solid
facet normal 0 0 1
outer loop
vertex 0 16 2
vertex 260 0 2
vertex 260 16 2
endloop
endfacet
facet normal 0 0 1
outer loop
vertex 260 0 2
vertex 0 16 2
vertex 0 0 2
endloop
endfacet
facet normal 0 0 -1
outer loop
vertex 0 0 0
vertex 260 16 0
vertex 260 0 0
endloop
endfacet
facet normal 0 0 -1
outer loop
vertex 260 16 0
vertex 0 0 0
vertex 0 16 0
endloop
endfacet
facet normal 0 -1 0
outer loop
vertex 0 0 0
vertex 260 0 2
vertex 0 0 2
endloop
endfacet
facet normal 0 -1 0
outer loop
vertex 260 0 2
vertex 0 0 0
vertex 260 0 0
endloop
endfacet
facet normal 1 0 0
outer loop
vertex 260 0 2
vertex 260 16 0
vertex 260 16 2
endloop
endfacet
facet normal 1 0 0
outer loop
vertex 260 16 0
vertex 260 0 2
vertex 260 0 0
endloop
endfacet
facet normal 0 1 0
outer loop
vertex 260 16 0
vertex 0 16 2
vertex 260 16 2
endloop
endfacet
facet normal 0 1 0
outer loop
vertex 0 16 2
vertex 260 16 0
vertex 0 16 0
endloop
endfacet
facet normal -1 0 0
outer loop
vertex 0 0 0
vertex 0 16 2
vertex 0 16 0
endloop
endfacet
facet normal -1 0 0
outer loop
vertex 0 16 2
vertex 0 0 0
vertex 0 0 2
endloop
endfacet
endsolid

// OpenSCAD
// file: ../references.scad
// Size
//Naming
// _PT = printable
// _ES = exact size
// _IS = insertable with force but no gaps

//--------------cables  (CB)

//----Ethernet (rj45)

//not mesured yet
CB_RJ45_Diameter_ES=4; 

//--------------threaded rod  (TR)

//----M5

TR_M5_Diameter_ES = 5.8;
//for a hole 
TR_M5_Diamater_IS = 6;
TR_M5_Diamater_PT = 7;


//----M10

TR_M10_Diameter_ES = 9.6;
//for a hole 
TR_M10_Diamater_IS = 10;
TR_M10_Diamater_PT = 12;

//--------------Screw (SC)
//----M3

module body_M3(height_input){
    cylinder(d=SC_M3_Diameter_PT,h=height_input,$fn=60);
    
    }

module body_M5(height_input){
    cylinder(d=SC_M5_Diameter_PT,h=height_input,$fn=60);
    
    }
    
SC_M3_Diameter_ES = 2.96;
SC_M3_Head_Diameter_ES = 5.90;
SC_M3_Head_Height_ES = 2.32;
//for a hole 
SC_M3_Diameter_PT = 4; 


//----M5

SC_M5_Diameter_ES = 4.86;
SC_M5_Head_Diameter_ES = 9.24;
SC_M5_Head_Height_ES = 3.0;
//for a hole 
SC_M5_Diameter_IS = 5;
SC_M5_Diameter_PT = 5.2; //inconnu pour le moment
SC_M5_Head_Diameter_PT = 11;

//--------------Nut Bolt (NB)

module nut_M3(height_input){
    cylinder(d=NB_M3_Diameter_C2C_PT,h=height_input,$fn=6);
    
    }

//----M3
// Side to side = from 2 paralelle faces S2S
// corner to corner = from 2 corners C2C


NB_M3_Diameter_S2S_ES = 5.30;
NB_M3_Diameter_C2C_ES = 6.0;

NB_M3_Diameter_S2S_PT = 6.30; //reducing as well
NB_M3_Diameter_C2C_PT = 7.0; //8.0 was too much 


//--------------Zip ties (ZT)

//Big zip ties I got    

ZT_length_ES = 300;
ZT_width_ES = 4.8;
ZT_height_ES = 1;

ZT_width_PT = 7;
ZT_height_PT = 3;

//--------------Velcro tape (VT)



VT_length_ES = 300;
VT_width_ES = 20;
VT_height_ES = 1;

VT_width_PT = 22;
VT_height_PT = 3;



//--------------Switch (SW)
//switch from castorama 
SW_length_ES = 13;
SW_width_ES = 8;
SW_height_ES = 14;

SW_length_PT = 15;
SW_width_PT = 10;
SW_height_PT = 16;


//switch from aliexpress
SW_AL_tube_width_ES = 5.7;
SW_AL_tube_width_PT = 7;

module custom_cylinder_switch(translated_position_X, translated_position_Y,translated_position_Z,heigh_input) {
    translate([translated_position_X, translated_position_Y, translated_position_Z]){ 
        rotate([90,0,0]){
            cylinder(d=SW_AL_tube_width_PT, h=heigh_input, $fn=30);
        }
    }
}
module custom_cylinder(rotate_input,translate_input,diameter_object,height_object){
    translate(translate_input){
        rotate(rotate_input){
            cylinder(d=diameter_object,h=height_object,$fn=60);
        }
    }
}

//--------------generic connectors (GC)
// USB C (USB-C)
GC_USB_C_length_ES = 7.3;
GC_USB_C_width_ES = 8.8;
GC_USB_C_height_ES = 3;

module USB_C(rotate_input,translate_input){
    translate(translate_input){
    rotate(rotate_input){
        hull(){
    cylinder(d=GC_USB_C_height_ES,h=GC_USB_C_length_ES,$fn=60);
translate([0,GC_USB_C_width_ES-GC_USB_C_height_ES,0]){
    cylinder(d=GC_USB_C_height_ES,h=GC_USB_C_length_ES,$fn=60);
}
}
    }
}
}

//--------------battery from vapes (BV)

//vapes crystal pro battery (CP)
BV_CP_length_ES = 34;
BV_CP_width_ES = 20;
BV_CP_height_ES = BV_CP_width_ES; //(because it's a cylinder)

BV_CP_length_PT = 37;
BV_CP_width_PT = 22;
BV_CP_height_PT = BV_CP_width_ES; //(because it's a cylinder)

//dimension list [legnth, width, height]
//BV_CP_PT=[37,22,22];
BV_CP_PT=[BV_CP_length_PT,BV_CP_width_PT,BV_CP_height_PT];

module vapes_battery(input_list,rotate_input,translate_input){
translate(translate_input){
    rotate(rotate_input){
        color("green")cylinder(d=input_list[1],h=input_list[0],$fn=60);
    }
    }
}


//--------------battery charger (BC)
//Board Charger TP4056 Module  (TP)

//https://www.az-delivery.uk/cdn/shop/products/tp4056-batterieladungsmodul-usb-typ-c-schutzschaltung-led-anzeigen-fur-ihre-li-ion-oder-lipo-einzelzellenbatterien-126337.jpg?v=1694708173


BC_TP_length_ES = 28;
BC_TP_full_length_ES = 28; //usb C end included
BC_TP_width_ES = 17;
BC_TP_height_ES = 1.3; //without USB C
BC_TP_full_height_ES = 5; //with USB C



//usb C connector position
BC_TP_width_from_side_ES = 8.44;//center of USB C connector from bottom (view from the top )
BC_TP_height_from_bottom_ES = 3.4;//center of USB C connector from bottom (view from the top )
BC_TP_negative_length_ES = 2;//center of USB C connector from bottom 

module battery_charger(rotate_input,translate_input){
    translate(translate_input){
    rotate(rotate_input){
        color("green"){
            cube([BC_TP_full_length_ES,BC_TP_width_ES,BC_TP_height_ES]);

                rotate_array_USB_C=[0,90,0];
    translate_array_USB_C=[-BC_TP_negative_length_ES,BC_TP_width_ES/2-(GC_USB_C_width_ES-GC_USB_C_height_ES)/2,GC_USB_C_height_ES/2+BC_TP_height_ES];
    
    USB_C(rotate_array_USB_C,translate_array_USB_C);

            
            }
    }
}
    
    }


//https://www.alectrofag.co.uk/cdn/shop/files/Hayati_Pro_Max_4000_Puffs_Disposable_Vape.jpg?v=1725012272




//https://d138zd1ktt9iqe.cloudfront.net/media/seo_landing_files/length-width-height-01-1646654708.png
// main file
include <../../Household/references.scad>

// Define variables for the dimensions and hole positions in millimeters

//size LED string
length_led_string = 260;
width_led_string = 16;
height_led_string = 1;
//structure
wall_thickness = 2;
gap_for_room = 2;

module main(){
    cube([length_led_string,width_led_string ,gap_for_room ]);
        }
    



main();
